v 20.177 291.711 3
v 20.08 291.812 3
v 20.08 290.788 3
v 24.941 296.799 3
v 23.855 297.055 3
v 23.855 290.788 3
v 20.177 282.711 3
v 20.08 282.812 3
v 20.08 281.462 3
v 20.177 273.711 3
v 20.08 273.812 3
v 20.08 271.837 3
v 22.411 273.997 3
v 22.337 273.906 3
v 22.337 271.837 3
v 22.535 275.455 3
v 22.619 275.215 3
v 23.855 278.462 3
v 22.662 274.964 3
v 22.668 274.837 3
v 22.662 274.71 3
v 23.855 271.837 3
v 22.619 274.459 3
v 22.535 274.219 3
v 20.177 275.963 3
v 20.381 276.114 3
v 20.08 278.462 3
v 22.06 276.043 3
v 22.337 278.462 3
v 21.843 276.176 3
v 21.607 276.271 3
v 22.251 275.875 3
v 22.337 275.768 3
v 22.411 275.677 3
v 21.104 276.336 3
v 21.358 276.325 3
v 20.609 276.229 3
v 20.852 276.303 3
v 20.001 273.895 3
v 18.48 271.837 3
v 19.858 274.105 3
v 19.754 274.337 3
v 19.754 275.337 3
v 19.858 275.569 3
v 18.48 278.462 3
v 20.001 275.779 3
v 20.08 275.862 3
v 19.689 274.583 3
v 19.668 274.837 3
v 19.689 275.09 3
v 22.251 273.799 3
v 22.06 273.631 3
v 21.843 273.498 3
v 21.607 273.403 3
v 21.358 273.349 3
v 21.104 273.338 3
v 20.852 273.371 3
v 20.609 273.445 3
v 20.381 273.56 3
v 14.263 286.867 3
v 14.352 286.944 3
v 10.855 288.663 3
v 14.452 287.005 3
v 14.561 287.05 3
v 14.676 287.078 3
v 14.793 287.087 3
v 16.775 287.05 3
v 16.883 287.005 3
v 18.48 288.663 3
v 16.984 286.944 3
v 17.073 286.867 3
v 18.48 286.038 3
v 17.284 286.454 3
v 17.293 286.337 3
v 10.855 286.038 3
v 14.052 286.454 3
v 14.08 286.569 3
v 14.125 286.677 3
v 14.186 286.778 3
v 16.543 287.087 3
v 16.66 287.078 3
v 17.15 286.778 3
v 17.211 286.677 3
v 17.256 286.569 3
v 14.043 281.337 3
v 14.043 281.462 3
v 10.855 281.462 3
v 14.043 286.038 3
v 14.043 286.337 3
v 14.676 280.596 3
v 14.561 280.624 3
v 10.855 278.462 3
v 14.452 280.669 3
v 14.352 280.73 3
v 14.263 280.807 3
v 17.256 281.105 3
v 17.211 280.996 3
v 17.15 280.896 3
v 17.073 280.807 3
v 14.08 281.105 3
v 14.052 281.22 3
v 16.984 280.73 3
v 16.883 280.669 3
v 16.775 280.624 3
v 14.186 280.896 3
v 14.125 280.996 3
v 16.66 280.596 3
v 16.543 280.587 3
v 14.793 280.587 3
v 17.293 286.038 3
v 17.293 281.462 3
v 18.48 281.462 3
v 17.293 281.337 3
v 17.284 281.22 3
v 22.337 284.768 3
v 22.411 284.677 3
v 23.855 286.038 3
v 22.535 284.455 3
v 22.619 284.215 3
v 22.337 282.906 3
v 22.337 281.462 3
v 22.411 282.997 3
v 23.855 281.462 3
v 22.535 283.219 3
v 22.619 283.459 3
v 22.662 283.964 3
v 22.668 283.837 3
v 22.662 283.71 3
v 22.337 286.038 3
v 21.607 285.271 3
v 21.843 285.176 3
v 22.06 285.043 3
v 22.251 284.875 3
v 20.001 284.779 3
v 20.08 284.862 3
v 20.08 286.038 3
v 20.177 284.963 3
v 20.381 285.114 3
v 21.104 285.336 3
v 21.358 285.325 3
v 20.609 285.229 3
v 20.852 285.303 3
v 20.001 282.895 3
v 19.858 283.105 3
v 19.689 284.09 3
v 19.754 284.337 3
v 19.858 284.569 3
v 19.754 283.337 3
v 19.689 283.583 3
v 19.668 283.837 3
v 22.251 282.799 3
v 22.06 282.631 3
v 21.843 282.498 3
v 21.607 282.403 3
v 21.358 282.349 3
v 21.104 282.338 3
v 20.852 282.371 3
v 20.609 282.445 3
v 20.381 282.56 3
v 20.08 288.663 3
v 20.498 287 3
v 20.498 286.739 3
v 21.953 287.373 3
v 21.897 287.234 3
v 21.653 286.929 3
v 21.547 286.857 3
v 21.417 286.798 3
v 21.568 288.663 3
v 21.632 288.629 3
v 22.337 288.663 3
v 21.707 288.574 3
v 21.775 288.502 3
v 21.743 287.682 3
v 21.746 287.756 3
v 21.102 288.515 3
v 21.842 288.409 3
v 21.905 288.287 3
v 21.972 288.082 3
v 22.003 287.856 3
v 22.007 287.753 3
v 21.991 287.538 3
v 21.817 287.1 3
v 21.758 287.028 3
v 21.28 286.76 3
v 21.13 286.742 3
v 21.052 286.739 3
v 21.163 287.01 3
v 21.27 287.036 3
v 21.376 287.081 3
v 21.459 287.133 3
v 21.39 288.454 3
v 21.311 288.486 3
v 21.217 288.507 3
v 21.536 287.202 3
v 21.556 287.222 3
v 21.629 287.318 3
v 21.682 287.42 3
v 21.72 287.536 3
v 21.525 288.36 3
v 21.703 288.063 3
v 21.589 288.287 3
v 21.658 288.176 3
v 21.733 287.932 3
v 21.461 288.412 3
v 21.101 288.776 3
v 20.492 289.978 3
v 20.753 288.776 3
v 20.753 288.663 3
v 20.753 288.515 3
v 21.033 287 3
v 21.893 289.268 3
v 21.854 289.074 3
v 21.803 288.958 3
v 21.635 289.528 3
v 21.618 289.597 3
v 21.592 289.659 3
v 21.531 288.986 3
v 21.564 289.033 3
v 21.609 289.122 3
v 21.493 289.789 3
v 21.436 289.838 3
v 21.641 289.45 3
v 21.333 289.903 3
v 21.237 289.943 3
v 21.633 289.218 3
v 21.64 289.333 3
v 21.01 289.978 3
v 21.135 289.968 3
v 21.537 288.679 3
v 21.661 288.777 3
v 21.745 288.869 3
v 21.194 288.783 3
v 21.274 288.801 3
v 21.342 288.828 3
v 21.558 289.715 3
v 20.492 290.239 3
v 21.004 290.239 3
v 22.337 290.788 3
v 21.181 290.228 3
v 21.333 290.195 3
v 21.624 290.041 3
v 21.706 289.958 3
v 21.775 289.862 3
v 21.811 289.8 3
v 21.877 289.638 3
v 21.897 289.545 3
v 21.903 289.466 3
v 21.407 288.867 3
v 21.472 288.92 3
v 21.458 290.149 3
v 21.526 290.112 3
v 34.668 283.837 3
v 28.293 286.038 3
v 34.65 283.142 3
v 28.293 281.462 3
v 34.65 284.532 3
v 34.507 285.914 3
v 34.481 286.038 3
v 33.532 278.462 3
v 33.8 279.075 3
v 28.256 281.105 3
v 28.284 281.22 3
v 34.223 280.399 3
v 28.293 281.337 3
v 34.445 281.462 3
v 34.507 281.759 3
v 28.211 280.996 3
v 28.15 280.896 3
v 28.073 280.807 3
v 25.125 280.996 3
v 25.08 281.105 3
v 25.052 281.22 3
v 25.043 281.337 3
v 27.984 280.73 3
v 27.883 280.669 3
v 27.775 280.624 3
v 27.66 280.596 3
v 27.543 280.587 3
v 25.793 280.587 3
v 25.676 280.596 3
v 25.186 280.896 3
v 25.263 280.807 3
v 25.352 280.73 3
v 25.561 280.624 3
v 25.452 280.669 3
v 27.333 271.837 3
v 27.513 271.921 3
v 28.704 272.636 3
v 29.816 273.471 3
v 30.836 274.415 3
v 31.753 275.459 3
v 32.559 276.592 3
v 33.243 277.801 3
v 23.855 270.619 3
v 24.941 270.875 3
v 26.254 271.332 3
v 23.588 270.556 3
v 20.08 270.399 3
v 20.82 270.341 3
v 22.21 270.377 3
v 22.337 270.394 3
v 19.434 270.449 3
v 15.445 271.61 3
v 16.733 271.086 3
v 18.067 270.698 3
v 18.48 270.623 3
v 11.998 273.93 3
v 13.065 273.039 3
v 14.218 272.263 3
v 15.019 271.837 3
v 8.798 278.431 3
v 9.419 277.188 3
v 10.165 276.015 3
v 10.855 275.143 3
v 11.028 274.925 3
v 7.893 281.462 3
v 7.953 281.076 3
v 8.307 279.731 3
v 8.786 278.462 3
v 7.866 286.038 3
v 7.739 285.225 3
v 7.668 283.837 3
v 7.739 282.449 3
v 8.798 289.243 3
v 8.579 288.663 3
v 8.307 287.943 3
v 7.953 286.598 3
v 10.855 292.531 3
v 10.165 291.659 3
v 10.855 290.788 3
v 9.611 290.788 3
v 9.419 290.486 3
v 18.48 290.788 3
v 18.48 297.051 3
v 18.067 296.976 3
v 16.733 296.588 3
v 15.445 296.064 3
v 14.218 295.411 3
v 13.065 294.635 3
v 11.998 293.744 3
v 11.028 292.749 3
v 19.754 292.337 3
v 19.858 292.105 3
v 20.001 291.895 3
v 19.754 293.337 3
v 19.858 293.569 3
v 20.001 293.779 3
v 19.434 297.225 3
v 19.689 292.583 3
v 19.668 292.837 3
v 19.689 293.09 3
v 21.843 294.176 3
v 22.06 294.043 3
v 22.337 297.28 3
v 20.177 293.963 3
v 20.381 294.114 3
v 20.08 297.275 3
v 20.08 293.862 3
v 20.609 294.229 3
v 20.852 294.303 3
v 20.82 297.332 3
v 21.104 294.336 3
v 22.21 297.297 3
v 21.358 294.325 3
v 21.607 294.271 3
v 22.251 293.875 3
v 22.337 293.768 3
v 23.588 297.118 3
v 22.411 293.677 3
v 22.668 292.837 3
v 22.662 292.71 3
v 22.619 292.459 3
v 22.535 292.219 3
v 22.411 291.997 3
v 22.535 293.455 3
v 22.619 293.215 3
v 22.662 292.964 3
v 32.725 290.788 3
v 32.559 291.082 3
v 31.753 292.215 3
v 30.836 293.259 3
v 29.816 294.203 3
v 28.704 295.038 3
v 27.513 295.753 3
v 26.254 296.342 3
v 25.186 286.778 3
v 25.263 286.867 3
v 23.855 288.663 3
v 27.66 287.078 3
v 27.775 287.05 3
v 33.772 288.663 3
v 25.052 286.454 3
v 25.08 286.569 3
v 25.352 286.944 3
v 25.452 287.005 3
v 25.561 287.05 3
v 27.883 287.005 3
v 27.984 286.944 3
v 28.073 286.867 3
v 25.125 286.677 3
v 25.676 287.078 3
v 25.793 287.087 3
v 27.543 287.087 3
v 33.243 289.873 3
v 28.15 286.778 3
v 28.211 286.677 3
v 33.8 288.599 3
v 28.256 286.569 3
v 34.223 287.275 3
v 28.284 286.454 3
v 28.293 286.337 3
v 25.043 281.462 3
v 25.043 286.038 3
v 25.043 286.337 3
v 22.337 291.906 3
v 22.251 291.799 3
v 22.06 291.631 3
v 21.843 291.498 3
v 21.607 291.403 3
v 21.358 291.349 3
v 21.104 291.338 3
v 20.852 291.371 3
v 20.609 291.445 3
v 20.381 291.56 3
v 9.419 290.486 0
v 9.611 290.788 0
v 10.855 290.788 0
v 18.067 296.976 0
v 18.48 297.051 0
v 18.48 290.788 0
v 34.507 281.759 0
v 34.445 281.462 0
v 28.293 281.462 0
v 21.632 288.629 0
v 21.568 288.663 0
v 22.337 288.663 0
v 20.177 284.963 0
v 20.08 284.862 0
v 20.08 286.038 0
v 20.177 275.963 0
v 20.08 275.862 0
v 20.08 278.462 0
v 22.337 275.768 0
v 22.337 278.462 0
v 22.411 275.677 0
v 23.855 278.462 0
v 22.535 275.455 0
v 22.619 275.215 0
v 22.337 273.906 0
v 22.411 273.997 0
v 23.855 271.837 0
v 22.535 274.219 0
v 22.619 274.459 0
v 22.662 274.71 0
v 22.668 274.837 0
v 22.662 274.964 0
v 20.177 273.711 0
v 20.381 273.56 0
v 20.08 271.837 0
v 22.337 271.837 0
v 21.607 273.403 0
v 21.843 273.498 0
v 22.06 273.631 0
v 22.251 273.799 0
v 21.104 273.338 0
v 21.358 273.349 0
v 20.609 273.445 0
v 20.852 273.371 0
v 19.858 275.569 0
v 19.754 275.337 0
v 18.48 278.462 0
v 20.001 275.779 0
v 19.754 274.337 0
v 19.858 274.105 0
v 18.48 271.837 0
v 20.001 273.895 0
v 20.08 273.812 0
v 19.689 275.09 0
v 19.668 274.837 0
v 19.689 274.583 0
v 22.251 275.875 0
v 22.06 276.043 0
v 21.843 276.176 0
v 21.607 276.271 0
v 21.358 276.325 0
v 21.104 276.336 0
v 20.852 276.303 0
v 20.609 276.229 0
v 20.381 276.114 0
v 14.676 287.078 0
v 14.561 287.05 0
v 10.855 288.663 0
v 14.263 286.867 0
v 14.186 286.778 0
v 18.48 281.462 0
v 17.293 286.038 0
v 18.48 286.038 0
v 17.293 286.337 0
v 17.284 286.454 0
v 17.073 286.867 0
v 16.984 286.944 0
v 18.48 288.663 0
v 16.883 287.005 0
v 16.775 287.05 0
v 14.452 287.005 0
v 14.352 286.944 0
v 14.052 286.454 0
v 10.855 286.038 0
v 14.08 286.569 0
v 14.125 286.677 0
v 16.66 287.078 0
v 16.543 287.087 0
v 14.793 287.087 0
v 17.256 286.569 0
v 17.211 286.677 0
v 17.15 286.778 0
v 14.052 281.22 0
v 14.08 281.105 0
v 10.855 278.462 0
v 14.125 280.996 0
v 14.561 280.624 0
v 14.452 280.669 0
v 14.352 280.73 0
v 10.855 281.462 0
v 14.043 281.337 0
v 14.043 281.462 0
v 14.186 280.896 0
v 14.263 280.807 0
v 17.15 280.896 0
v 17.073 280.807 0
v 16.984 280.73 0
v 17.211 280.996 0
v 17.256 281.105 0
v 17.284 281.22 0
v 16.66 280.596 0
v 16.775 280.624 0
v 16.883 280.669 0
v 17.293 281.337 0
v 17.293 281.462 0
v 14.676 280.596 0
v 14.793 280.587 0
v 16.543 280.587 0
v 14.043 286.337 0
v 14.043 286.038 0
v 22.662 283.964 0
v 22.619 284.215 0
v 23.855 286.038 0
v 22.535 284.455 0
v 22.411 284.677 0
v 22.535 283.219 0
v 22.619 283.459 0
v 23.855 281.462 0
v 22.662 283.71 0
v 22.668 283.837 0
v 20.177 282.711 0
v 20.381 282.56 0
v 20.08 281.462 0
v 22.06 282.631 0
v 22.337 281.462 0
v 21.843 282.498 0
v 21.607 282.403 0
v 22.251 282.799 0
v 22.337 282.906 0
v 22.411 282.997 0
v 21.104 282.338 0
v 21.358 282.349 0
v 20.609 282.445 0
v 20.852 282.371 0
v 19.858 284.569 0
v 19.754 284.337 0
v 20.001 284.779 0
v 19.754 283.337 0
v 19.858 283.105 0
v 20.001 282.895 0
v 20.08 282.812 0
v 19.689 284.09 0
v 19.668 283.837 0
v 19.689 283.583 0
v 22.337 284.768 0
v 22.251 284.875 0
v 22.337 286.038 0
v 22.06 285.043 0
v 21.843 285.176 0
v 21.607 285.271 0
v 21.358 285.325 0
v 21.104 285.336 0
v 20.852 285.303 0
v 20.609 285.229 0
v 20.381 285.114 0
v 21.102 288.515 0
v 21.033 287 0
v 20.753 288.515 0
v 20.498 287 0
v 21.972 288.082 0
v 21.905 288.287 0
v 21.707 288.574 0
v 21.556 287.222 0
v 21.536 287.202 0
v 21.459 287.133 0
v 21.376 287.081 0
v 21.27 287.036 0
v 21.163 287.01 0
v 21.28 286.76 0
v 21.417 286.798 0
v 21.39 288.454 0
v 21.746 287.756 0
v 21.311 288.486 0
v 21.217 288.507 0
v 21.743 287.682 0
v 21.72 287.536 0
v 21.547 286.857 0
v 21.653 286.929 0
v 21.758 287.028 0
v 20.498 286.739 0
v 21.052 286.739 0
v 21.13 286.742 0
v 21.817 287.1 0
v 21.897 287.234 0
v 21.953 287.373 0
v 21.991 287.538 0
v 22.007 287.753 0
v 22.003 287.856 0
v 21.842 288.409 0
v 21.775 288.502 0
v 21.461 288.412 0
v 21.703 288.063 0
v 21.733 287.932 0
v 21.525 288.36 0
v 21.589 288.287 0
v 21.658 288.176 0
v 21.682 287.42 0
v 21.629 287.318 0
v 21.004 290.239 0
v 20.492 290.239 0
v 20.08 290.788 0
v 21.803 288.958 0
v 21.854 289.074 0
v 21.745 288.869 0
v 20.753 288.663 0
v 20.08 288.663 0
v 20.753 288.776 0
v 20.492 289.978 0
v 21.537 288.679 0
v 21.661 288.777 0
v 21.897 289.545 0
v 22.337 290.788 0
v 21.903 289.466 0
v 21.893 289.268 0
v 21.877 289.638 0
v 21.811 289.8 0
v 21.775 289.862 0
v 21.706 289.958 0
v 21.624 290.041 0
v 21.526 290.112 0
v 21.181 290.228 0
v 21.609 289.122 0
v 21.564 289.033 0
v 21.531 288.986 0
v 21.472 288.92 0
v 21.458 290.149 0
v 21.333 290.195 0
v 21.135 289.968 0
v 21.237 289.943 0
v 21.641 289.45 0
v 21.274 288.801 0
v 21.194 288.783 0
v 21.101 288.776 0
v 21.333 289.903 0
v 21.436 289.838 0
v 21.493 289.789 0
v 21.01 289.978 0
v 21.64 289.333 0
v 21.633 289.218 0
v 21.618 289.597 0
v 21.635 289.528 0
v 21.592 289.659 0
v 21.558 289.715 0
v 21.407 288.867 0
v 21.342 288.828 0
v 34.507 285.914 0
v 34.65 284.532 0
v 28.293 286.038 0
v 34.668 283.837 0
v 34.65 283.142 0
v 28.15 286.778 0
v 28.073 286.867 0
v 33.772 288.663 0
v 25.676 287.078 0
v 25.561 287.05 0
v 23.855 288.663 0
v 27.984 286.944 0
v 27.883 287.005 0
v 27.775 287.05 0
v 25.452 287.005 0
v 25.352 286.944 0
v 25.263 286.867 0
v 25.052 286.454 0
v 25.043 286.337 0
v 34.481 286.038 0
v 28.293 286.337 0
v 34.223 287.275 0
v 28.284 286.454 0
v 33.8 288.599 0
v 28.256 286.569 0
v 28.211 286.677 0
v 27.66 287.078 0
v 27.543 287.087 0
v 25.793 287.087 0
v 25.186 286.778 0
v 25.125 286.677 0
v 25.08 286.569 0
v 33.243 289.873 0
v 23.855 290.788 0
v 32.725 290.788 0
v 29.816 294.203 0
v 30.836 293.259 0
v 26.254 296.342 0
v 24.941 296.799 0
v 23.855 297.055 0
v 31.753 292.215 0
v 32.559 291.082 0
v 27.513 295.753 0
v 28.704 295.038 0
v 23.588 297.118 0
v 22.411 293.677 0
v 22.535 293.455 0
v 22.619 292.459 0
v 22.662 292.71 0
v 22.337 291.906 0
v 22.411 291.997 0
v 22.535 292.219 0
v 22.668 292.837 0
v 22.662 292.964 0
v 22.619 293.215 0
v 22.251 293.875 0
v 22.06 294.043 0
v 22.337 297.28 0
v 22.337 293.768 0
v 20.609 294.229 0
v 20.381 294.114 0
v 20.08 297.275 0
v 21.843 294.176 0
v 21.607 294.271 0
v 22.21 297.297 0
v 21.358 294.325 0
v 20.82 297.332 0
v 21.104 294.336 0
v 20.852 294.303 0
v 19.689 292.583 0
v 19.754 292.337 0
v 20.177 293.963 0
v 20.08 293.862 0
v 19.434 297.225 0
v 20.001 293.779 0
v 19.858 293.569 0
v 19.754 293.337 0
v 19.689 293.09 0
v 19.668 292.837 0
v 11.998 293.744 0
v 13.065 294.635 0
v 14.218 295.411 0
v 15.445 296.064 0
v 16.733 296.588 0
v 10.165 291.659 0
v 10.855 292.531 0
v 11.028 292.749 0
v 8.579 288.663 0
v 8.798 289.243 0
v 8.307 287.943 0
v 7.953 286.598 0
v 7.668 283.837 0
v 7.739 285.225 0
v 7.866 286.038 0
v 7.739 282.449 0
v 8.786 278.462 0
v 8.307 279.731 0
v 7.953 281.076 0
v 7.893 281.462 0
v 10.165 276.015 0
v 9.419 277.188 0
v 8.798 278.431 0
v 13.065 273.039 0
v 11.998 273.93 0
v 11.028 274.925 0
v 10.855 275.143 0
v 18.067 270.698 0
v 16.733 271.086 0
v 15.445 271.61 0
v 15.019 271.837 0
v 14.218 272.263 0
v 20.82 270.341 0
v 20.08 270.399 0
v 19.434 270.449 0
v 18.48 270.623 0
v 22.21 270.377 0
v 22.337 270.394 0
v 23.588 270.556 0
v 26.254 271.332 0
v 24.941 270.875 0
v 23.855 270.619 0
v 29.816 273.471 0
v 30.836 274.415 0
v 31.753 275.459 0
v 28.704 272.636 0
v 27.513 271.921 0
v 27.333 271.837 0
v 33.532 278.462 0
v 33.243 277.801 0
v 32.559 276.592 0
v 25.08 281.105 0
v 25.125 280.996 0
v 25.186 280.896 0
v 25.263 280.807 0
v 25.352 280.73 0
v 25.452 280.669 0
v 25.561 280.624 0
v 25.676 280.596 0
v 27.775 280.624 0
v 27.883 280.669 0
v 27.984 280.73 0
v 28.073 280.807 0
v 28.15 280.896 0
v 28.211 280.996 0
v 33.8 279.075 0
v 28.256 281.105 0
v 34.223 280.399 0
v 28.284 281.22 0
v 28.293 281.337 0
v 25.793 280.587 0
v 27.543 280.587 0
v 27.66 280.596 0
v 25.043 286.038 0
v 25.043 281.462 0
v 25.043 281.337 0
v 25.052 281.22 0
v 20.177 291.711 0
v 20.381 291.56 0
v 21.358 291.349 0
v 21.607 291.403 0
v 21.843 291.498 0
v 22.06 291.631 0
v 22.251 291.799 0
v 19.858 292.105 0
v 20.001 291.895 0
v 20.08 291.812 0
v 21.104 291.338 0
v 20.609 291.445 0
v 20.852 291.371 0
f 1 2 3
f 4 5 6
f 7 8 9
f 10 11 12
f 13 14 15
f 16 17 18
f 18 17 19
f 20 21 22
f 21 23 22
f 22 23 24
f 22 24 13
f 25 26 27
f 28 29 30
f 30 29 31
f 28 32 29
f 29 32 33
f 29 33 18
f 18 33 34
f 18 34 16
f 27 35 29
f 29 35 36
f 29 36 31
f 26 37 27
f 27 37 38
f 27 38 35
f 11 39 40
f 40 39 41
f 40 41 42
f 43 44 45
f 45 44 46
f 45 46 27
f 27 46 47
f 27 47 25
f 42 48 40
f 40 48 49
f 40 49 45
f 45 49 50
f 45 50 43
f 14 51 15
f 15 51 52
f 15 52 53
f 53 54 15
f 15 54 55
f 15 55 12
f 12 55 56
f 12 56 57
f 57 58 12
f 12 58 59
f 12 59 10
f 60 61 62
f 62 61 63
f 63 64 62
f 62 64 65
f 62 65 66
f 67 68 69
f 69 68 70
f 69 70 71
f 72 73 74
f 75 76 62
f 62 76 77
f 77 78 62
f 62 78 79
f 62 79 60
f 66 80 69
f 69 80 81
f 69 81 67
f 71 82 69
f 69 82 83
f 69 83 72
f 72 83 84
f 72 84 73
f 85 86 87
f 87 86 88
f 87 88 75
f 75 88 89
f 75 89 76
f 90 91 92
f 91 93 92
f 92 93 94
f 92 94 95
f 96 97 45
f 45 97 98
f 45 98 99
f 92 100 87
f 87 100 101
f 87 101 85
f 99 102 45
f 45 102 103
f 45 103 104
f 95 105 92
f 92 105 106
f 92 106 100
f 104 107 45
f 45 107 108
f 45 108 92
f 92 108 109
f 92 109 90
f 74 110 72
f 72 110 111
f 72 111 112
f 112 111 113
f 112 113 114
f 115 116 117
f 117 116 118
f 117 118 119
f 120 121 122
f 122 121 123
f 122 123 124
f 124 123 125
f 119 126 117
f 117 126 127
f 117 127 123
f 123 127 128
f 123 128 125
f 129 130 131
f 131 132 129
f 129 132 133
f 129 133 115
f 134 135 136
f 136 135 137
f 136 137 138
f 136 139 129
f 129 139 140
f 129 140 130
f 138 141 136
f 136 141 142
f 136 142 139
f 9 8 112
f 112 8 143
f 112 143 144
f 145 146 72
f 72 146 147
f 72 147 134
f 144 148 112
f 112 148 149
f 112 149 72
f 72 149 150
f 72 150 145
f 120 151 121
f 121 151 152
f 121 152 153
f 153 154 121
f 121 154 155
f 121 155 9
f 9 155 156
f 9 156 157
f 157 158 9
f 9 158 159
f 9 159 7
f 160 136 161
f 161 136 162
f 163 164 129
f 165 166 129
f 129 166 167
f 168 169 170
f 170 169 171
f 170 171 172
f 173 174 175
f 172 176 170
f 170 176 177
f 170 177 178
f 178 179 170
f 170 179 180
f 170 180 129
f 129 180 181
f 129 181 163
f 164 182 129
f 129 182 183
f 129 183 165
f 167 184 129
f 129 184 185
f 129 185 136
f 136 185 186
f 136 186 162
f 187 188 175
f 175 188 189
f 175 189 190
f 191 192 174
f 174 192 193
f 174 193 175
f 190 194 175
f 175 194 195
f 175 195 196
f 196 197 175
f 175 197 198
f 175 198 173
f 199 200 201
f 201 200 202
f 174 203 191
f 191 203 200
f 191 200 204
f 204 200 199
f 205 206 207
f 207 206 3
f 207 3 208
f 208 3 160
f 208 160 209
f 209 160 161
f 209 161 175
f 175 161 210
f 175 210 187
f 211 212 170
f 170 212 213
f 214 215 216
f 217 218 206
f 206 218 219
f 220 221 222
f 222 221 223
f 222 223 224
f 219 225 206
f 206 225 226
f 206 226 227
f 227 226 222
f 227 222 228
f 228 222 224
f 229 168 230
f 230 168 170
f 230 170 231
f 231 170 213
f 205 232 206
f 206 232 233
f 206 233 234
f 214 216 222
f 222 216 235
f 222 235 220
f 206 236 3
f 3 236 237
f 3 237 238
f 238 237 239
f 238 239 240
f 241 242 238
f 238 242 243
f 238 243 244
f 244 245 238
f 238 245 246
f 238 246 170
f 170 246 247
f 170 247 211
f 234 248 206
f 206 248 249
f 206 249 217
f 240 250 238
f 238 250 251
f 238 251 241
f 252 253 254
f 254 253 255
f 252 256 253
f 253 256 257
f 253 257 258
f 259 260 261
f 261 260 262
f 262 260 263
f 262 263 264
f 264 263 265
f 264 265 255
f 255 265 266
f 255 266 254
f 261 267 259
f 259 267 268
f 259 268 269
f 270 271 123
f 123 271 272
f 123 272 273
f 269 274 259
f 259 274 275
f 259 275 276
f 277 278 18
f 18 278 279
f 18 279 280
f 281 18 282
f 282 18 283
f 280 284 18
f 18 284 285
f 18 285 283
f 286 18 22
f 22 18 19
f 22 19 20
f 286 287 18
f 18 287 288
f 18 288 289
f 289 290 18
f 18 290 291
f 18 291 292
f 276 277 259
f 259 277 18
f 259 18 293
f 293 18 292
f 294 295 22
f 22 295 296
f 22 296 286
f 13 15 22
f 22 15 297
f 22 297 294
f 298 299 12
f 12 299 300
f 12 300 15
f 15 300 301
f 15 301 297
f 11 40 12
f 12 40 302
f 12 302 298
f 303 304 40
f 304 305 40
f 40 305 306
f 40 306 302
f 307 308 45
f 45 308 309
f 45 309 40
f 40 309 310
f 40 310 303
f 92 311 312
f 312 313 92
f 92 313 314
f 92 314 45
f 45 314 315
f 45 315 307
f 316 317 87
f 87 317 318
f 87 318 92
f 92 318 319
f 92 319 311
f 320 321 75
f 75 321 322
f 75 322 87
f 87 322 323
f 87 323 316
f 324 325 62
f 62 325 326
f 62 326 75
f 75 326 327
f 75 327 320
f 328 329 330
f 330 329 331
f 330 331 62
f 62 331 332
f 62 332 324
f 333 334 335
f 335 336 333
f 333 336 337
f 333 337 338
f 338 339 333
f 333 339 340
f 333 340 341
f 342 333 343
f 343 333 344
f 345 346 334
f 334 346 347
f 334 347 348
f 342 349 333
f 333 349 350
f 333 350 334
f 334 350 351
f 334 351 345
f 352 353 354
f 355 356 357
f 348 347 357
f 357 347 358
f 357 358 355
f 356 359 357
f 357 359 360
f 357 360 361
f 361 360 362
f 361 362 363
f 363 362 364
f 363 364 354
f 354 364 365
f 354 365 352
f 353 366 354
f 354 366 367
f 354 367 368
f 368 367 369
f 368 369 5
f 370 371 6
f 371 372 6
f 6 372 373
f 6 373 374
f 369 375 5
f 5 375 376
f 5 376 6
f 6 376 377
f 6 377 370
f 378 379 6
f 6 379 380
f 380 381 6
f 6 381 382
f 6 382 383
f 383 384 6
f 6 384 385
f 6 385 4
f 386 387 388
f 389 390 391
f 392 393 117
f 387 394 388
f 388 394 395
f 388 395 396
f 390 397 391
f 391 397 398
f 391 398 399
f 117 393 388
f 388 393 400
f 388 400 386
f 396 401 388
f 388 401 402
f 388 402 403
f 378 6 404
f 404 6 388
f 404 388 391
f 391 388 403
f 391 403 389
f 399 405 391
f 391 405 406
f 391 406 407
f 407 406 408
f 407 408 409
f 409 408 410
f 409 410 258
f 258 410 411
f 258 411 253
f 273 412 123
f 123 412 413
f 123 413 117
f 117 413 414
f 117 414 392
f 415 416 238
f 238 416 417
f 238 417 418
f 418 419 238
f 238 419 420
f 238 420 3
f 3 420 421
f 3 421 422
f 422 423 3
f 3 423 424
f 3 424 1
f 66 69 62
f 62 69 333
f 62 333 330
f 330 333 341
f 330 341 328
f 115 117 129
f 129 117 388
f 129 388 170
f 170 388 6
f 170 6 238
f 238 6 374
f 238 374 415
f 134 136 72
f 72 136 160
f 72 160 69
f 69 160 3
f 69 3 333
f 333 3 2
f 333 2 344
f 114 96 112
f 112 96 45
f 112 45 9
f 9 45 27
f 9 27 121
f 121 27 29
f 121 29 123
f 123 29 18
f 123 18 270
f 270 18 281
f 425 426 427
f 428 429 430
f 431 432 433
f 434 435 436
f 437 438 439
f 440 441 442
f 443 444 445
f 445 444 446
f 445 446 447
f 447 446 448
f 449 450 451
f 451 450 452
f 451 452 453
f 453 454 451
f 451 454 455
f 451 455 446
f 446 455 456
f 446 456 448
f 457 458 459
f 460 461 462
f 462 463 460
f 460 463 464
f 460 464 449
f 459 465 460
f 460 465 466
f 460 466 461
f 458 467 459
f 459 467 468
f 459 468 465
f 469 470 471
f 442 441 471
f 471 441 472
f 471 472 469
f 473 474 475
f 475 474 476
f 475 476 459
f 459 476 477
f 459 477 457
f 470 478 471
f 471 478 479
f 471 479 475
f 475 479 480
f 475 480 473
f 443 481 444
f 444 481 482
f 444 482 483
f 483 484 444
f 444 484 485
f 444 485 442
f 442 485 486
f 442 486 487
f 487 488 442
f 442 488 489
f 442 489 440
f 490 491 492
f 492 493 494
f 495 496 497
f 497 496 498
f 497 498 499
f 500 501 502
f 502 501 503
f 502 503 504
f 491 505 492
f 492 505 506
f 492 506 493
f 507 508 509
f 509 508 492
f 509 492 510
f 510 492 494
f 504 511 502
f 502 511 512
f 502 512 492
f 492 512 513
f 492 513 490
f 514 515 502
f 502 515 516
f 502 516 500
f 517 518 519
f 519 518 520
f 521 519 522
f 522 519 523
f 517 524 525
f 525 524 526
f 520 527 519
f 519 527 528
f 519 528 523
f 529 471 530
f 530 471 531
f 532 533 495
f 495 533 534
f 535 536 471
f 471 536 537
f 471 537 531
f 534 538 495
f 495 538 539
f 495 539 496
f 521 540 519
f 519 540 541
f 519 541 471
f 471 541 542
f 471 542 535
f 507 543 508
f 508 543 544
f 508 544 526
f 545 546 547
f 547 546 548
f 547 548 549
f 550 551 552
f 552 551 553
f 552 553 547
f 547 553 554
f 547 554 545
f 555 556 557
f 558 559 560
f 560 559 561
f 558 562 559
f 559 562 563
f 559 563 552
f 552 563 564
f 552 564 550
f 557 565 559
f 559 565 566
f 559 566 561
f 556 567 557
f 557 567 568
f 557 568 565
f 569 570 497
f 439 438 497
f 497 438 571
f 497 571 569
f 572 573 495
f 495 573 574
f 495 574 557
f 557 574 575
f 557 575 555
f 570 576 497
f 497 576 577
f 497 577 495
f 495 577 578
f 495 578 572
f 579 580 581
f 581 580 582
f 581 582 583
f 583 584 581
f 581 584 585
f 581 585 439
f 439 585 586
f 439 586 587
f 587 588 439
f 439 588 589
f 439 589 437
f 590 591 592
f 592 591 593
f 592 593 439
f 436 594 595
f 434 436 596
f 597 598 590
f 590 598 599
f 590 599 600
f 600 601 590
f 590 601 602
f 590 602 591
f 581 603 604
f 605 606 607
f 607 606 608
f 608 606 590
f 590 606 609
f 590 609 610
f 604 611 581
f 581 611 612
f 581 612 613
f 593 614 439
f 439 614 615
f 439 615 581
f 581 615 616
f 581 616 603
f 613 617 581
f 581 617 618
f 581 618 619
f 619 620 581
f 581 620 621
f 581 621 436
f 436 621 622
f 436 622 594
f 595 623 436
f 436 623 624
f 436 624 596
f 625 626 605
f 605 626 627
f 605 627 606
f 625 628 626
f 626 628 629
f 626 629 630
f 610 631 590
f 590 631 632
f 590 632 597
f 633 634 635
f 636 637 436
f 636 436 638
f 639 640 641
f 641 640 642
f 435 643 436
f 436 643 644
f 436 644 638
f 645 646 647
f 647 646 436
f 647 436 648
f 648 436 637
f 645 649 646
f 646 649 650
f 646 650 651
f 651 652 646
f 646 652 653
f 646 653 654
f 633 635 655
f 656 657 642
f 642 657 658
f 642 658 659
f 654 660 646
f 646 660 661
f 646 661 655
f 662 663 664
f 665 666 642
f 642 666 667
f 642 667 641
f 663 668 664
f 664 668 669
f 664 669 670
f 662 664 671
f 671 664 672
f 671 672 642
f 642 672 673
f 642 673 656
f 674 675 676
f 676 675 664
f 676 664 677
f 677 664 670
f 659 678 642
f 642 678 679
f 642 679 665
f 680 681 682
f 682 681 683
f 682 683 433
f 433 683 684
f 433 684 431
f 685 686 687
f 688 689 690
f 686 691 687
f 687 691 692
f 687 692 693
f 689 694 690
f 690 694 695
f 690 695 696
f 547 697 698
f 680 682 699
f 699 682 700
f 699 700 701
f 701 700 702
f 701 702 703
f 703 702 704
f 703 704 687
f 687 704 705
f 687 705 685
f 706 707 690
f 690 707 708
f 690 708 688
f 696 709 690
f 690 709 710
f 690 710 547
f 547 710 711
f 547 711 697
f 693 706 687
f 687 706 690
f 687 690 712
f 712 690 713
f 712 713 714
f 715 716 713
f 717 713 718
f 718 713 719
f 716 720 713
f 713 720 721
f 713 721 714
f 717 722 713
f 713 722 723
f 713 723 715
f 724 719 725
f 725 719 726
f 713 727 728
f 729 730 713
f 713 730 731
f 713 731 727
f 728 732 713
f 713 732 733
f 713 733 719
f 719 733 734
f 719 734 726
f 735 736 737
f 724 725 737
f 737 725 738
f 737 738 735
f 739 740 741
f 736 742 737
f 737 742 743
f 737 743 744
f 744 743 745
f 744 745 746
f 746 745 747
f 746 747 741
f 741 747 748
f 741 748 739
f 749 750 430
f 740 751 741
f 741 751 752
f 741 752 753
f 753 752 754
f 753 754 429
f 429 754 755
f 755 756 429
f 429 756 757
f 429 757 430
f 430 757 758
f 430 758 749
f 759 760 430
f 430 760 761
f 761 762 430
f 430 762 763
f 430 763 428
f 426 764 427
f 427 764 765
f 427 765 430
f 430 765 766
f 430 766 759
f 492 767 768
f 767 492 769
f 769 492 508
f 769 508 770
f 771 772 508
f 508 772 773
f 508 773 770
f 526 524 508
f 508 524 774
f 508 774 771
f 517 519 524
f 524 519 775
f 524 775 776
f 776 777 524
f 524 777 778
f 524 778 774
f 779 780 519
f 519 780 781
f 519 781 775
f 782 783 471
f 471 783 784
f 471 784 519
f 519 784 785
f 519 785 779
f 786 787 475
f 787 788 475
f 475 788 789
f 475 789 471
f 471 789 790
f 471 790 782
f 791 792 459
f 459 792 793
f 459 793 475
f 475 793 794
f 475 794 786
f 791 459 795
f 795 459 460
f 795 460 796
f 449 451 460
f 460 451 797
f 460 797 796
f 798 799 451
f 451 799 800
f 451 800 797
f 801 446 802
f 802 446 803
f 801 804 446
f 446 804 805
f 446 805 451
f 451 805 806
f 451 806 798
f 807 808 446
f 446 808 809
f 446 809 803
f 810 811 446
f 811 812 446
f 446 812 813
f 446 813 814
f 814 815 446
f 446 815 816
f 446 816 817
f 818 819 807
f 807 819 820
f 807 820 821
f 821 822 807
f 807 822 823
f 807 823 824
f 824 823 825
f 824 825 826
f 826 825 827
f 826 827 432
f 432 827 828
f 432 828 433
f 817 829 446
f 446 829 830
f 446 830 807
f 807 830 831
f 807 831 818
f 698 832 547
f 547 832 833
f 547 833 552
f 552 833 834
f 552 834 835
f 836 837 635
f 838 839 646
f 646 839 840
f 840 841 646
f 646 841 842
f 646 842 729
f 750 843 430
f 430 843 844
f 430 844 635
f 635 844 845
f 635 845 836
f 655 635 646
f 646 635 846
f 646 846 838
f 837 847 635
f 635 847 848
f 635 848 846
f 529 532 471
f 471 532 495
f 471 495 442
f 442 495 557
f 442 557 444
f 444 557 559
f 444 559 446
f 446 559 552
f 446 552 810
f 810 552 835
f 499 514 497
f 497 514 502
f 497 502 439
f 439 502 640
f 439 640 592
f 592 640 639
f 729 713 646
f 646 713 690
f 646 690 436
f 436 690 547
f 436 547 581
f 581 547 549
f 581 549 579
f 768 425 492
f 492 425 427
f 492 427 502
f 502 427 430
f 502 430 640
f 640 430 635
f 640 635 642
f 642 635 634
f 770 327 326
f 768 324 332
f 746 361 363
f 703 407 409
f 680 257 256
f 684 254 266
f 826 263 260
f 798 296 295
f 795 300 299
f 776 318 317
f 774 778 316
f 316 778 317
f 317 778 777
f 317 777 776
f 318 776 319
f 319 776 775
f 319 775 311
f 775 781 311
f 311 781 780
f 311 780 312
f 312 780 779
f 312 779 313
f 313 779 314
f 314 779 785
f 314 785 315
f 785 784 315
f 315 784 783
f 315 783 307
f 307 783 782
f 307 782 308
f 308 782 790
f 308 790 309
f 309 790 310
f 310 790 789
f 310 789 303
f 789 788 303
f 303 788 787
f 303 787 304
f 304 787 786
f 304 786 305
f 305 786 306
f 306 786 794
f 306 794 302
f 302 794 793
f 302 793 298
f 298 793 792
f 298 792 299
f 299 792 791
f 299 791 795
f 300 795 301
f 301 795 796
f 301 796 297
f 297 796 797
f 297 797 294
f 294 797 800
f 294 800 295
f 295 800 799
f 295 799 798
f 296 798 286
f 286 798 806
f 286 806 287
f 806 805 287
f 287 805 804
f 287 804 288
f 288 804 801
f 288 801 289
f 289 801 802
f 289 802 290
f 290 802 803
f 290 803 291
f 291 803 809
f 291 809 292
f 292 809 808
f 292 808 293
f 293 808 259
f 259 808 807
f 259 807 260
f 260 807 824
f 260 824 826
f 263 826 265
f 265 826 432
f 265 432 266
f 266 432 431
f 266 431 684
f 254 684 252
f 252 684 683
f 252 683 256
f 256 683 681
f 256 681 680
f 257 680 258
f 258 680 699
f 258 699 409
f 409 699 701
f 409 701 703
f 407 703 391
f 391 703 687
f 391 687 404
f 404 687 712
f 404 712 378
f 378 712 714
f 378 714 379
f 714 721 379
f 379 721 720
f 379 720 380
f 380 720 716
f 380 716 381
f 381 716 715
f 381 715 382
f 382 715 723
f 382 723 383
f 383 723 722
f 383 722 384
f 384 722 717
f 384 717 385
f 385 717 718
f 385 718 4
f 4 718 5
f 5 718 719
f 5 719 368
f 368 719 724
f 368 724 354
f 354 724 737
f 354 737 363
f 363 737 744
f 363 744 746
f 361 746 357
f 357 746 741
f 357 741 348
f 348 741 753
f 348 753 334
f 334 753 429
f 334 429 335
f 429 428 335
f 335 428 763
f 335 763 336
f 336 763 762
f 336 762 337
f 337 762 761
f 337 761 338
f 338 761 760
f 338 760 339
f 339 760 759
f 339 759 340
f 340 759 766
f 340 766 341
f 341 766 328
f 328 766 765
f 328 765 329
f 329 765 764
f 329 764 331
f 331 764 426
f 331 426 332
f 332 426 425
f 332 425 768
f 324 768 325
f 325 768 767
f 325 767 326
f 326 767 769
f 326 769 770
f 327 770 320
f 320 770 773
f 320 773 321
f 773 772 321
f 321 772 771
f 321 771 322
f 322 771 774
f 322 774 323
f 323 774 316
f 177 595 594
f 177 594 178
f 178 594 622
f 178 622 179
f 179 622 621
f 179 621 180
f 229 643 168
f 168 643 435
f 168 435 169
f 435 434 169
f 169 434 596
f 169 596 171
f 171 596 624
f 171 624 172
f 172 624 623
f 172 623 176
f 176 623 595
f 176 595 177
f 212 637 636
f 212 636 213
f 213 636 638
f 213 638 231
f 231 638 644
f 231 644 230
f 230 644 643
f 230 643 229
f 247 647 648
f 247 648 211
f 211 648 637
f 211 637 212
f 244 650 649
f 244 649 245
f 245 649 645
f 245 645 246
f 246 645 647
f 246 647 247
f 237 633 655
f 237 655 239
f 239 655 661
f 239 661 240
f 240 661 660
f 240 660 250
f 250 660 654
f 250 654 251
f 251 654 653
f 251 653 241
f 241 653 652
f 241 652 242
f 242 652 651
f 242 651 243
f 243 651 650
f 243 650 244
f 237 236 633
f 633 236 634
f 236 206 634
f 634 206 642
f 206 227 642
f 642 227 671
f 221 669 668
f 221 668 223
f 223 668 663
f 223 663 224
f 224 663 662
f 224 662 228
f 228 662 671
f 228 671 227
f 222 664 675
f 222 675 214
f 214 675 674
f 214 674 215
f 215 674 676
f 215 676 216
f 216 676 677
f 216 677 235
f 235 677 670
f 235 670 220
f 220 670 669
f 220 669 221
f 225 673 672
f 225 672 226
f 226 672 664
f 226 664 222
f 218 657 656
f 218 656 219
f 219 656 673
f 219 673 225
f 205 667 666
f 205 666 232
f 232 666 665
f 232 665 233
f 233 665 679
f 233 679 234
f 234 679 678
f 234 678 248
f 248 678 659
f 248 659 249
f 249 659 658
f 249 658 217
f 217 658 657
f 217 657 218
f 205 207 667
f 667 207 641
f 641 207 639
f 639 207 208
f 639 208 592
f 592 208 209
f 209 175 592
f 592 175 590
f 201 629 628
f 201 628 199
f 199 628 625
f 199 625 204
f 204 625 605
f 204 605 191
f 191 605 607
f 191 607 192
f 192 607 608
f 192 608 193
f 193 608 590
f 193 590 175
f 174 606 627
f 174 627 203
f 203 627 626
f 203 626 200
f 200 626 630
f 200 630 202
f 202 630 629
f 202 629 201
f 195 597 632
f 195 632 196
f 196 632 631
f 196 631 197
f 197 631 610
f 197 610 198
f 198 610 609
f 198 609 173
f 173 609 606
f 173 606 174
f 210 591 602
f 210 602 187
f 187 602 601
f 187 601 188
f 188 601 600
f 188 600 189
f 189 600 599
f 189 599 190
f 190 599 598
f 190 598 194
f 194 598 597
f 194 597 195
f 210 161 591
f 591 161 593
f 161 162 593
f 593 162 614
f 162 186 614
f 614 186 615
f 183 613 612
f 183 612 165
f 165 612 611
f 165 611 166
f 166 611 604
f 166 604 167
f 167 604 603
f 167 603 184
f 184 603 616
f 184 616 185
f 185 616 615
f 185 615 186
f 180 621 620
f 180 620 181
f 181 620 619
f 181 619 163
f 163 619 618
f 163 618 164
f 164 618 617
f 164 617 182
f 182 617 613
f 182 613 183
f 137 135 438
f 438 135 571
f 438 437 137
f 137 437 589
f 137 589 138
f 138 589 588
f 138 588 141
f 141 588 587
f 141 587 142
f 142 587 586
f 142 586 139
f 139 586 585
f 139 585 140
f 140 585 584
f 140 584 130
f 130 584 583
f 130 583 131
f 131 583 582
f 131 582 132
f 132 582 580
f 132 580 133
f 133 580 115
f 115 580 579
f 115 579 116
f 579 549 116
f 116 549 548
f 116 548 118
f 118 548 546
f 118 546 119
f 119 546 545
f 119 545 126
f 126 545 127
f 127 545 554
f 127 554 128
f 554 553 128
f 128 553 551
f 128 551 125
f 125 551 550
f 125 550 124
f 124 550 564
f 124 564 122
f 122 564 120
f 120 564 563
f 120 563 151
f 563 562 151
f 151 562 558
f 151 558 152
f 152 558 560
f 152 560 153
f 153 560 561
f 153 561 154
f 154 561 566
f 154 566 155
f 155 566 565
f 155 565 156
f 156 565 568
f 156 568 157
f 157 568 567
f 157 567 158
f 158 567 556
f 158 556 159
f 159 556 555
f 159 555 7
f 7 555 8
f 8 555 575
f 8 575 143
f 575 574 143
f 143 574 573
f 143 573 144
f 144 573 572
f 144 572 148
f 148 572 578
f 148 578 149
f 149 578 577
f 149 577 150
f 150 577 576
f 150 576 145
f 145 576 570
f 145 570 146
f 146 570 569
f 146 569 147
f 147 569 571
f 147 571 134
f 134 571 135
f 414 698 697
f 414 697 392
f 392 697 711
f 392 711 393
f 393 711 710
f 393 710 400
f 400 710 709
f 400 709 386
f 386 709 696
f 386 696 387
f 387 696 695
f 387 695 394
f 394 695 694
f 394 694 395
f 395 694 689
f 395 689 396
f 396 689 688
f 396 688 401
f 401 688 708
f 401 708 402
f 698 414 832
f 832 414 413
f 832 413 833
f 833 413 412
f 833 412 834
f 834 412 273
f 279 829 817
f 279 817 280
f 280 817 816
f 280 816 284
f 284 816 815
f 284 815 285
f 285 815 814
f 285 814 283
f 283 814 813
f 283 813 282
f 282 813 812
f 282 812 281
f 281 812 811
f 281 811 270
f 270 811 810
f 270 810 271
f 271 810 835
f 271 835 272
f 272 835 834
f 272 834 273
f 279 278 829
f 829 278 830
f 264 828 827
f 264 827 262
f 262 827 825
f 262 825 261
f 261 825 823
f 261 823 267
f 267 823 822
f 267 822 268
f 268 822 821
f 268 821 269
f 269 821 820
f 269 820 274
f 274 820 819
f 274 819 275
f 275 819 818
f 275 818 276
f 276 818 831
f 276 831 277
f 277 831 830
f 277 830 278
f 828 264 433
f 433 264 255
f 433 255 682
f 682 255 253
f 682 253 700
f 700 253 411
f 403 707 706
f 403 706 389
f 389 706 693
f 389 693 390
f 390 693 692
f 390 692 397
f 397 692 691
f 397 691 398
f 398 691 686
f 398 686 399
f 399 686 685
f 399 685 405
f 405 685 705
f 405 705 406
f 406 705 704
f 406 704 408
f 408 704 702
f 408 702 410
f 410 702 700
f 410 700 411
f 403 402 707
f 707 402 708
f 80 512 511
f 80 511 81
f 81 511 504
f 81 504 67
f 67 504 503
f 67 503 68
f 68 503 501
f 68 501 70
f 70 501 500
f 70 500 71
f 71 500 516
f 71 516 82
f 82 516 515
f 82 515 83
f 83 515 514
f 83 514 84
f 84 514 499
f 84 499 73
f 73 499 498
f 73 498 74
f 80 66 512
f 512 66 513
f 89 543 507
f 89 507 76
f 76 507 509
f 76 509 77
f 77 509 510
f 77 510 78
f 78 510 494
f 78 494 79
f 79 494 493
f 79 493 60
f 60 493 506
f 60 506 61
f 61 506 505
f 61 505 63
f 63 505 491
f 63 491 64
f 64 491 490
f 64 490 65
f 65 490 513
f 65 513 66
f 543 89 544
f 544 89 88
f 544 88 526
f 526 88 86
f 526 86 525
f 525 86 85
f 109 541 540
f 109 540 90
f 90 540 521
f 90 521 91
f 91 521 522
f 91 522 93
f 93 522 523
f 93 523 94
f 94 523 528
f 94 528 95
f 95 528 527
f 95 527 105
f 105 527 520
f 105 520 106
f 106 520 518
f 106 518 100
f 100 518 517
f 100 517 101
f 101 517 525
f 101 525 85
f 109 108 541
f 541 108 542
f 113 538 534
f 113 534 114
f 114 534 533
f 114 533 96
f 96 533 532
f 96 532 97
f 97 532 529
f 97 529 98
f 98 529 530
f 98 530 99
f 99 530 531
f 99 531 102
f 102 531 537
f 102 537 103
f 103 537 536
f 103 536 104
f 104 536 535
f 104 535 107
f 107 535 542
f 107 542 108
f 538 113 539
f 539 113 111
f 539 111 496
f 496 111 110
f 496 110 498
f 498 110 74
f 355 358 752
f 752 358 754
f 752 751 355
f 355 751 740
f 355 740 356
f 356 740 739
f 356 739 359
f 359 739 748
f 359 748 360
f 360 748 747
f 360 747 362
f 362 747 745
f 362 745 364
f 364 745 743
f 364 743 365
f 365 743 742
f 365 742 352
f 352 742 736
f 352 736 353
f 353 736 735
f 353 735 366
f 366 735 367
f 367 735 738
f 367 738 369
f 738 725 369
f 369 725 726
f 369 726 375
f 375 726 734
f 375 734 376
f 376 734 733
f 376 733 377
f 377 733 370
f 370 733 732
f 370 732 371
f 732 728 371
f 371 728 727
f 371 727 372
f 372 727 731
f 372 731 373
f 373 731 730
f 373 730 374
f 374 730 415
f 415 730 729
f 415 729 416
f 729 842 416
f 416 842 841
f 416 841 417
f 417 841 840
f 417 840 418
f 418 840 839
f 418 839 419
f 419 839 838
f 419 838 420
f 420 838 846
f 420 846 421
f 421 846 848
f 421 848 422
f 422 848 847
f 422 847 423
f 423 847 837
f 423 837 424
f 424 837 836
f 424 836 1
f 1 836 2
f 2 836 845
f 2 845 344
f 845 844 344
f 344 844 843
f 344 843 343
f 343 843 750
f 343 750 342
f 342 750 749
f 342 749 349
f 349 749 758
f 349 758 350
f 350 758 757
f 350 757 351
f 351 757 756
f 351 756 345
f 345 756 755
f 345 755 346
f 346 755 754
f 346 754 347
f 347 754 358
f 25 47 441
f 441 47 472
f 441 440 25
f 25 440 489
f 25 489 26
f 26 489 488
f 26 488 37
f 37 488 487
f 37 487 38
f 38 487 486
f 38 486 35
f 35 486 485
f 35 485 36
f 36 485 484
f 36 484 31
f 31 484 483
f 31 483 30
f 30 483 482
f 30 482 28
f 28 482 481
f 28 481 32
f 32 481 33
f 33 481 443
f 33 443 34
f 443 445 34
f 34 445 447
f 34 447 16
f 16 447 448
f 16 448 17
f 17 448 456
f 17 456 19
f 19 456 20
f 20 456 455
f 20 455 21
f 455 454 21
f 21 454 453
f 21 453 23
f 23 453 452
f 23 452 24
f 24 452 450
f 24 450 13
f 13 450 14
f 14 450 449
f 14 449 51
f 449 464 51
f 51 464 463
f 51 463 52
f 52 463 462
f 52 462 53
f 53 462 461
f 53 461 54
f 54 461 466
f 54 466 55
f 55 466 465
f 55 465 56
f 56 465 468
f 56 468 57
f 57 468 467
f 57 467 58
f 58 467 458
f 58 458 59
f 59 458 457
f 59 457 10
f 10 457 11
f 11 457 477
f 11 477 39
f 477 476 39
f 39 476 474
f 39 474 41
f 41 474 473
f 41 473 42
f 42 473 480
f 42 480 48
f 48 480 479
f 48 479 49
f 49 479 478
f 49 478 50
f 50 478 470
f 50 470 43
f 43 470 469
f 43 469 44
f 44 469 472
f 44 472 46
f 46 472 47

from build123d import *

# Parameters (mm, degrees)
MODEL_R                 = 13.5
MODEL_R_2               = 1.5
SALIENTE_EXTRUIR1_DEPTH = 3


with BuildPart() as part:
    # Model → Saliente-Extruir1 (new body)
    with BuildSketch(Plane.XY):
        with Locations((21.167864369, 283.836969837)):
            Circle(MODEL_R)
        with Locations((21.167864369, 283.836969837)):
            Circle(MODEL_R_2, mode=Mode.SUBTRACT)
        with Locations((21.167864369, 292.836969837)):
            Circle(MODEL_R_2, mode=Mode.SUBTRACT)
        with Locations((21.167864369, 274.836969837)):
            Circle(MODEL_R_2, mode=Mode.SUBTRACT)
        with BuildLine():
            Line((27.542864369, 287.086969837), (25.792864369, 287.086969837))
            ThreePointArc((25.792864369, 287.086969837), (25.262534283, 286.867299923), (25.042864369, 286.336969837))
            Line((25.042864369, 286.336969837), (25.042864369, 281.336969837))
            ThreePointArc((25.042864369, 281.336969837), (25.262534283, 280.806639751), (25.792864369, 280.586969837))
            Line((25.792864369, 280.586969837), (27.542864369, 280.586969837))
            ThreePointArc((27.542864369, 280.586969837), (28.073194454, 280.806639751), (28.292864369, 281.336969837))
            Line((28.292864369, 281.336969837), (28.292864369, 286.336969837))
            ThreePointArc((28.292864369, 286.336969837), (28.073194454, 286.867299923), (27.542864369, 287.086969837))
        make_face(mode=Mode.SUBTRACT)
        with BuildLine():
            Line((14.792864369, 287.086969837), (16.542864369, 287.086969837))
            ThreePointArc((16.542864369, 287.086969837), (17.073194454, 286.867299923), (17.292864369, 286.336969837))
            Line((17.292864369, 286.336969837), (17.292864369, 281.336969837))
            ThreePointArc((17.292864369, 281.336969837), (17.073194454, 280.806639751), (16.542864369, 280.586969837))
            Line((16.542864369, 280.586969837), (14.792864369, 280.586969837))
            ThreePointArc((14.792864369, 280.586969837), (14.262534283, 280.806639751), (14.042864369, 281.336969837))
            Line((14.042864369, 281.336969837), (14.042864369, 286.336969837))
            ThreePointArc((14.042864369, 286.336969837), (14.262534283, 286.867299923), (14.792864369, 287.086969837))
        make_face(mode=Mode.SUBTRACT)
        with BuildLine():
            add(Edge.make_bspline(
                [(22.006993441, 287.753415048), (22.006172191, 287.716928587), (22.004568422, 287.645676392), (21.993135393, 287.541332376), (21.973516379, 287.442536499), (21.946685696, 287.348686497), (21.911477525, 287.260048048), (21.868040261, 287.176817115), (21.817632611, 287.098498345), (21.777884433, 287.05133063), (21.758042881, 287.027785384)],
                knots=[0, 0, 0, 0, 1.115577891, 2.178544379, 3.204804607, 4.192155228, 5.159249624, 6.11554861, 7.059316894, 8, 8, 8, 8], degree=3))
            add(Edge.make_bspline(
                [(21.758042881, 287.027785384), (21.73601152, 287.004605717), (21.692200482, 286.958511187), (21.617136147, 286.900352518), (21.537624651, 286.849328876), (21.451173506, 286.810051796), (21.359873554, 286.77752931), (21.262438119, 286.754808132), (21.159003088, 286.741929369), (21.088224879, 286.739885485), (21.05200277, 286.738839488)],
                knots=[0, 0, 0, 0, 0.974182212, 1.937235425, 2.888233128, 3.849890637, 4.826332808, 5.840933291, 6.895056104, 8, 8, 8, 8], degree=3))
            Line((21.05200277, 286.738839488), (20.497781687, 286.738839488))
            Line((20.497781687, 286.738839488), (20.497781687, 287.000033518))
            Line((20.497781687, 287.000033518), (21.033229449, 287.000033518))
            add(Edge.make_bspline(
                [(21.033229449, 287.000033518), (21.059653725, 287.000919571), (21.111355614, 287.002653229), (21.186916697, 287.013225583), (21.258244632, 287.031310058), (21.32576964, 287.056003306), (21.38961335, 287.087000578), (21.44975153, 287.124774673), (21.505586643, 287.169810236), (21.538837792, 287.204528413), (21.555617508, 287.222048443)],
                knots=[0, 0, 0, 0, 1.084178992, 2.121310725, 3.122997411, 4.097638005, 5.066122913, 6.029254004, 7.005491271, 8, 8, 8, 8], degree=3))
            add(Edge.make_bspline(
                [(21.555617508, 287.222048443), (21.570999544, 287.239956661), (21.601490979, 287.275455687), (21.639704379, 287.334170151), (21.672756978, 287.395771039), (21.699752927, 287.461072065), (21.72000496, 287.530104828), (21.73464822, 287.60219141), (21.743868039, 287.677813713), (21.745145683, 287.72944549), (21.745799411, 287.755863742)],
                knots=[0, 0, 0, 0, 0.975929627, 1.934561601, 2.891539334, 3.86584409, 4.852559224, 5.863826262, 6.906991381, 8, 8, 8, 8], degree=3))
            add(Edge.make_bspline(
                [(21.745799411, 287.755863742), (21.745351061, 287.782273605), (21.744471049, 287.834110399), (21.736907633, 287.91019579), (21.725020702, 287.982561288), (21.707666875, 288.051045489), (21.685633293, 288.115780826), (21.65874604, 288.177014822), (21.627095592, 288.234661565), (21.601696729, 288.269786427), (21.589082993, 288.287230346)],
                knots=[0, 0, 0, 0, 1.12360389, 2.205389034, 3.250364499, 4.241620612, 5.208228378, 6.156918895, 7.084678002, 8, 8, 8, 8], degree=3))
            add(Edge.make_bspline(
                [(21.589082993, 288.287230346), (21.574544546, 288.305301748), (21.545751158, 288.341092151), (21.495588333, 288.387456001), (21.441330602, 288.427404284), (21.381961231, 288.458984195), (21.318660617, 288.484833389), (21.250329767, 288.502552092), (21.177508361, 288.513371193), (21.127407132, 288.514421779), (21.101792881, 288.514958891)],
                knots=[0, 0, 0, 0, 0.994376019, 1.96936123, 2.922417962, 3.87868906, 4.848062798, 5.850838393, 6.901241263, 8, 8, 8, 8], degree=3))
            Line((21.101792881, 288.514958891), (20.753262098, 288.514958891))
            Line((20.753262098, 288.514958891), (20.753262098, 288.776152921))
            Line((20.753262098, 288.776152921), (21.10097665, 288.776152921))
            add(Edge.make_bspline(
                [(21.10097665, 288.776152921), (21.124978156, 288.776894886), (21.17221513, 288.778355134), (21.24067129, 288.791069119), (21.305723418, 288.810446517), (21.365901811, 288.839327455), (21.422358121, 288.875571718), (21.473959727, 288.920548215), (21.522716334, 288.97252323), (21.549889744, 289.0127191), (21.563779822, 289.033265794)],
                knots=[0, 0, 0, 0, 1.03852652, 2.043907225, 3.00545783, 3.969963621, 4.924268074, 5.901926174, 6.927539546, 8, 8, 8, 8], degree=3))
            add(Edge.make_bspline(
                [(21.563779822, 289.033265794), (21.580087317, 289.061494287), (21.613384605, 289.119132341), (21.626478423, 289.184420887), (21.633159486, 289.217734078)],
                knots=[0, 0, 0, 0, 0.9795089, 2, 2, 2, 2], degree=3))
            add(Edge.make_bspline(
                [(21.633159486, 289.217734078), (21.634295276, 289.22888413), (21.637116527, 289.256580356), (21.640596563, 289.306371742), (21.640310959, 289.372553775), (21.640961043, 289.422066995), (21.641321799, 289.449543779)],
                knots=[0, 0, 0, 0, 0.579519237, 1.439499501, 2.579080104, 4, 4, 4, 4], degree=3))
            add(Edge.make_bspline(
                [(21.641321799, 289.449543779), (21.640763207, 289.468644592), (21.63967018, 289.506020185), (21.628999757, 289.560636767), (21.614177359, 289.613425933), (21.590523941, 289.663107736), (21.562151141, 289.711395656), (21.525289358, 289.755836224), (21.484208987, 289.79980254), (21.452048145, 289.825137537), (21.435631501, 289.838069899)],
                knots=[0, 0, 0, 0, 1.002526936, 1.961698665, 2.916276685, 3.87598114, 4.844591571, 5.851696512, 6.903388936, 8, 8, 8, 8], degree=3))
            add(Edge.make_bspline(
                [(21.435631501, 289.838069899), (21.404492029, 289.859708178), (21.342724342, 289.902629473), (21.237809785, 289.945182436), (21.126620474, 289.972764119), (21.049727634, 289.975992976), (21.010374971, 289.977645458)],
                knots=[0, 0, 0, 0, 0.996493568, 1.9766264, 2.964466133, 4, 4, 4, 4], degree=3))
            Line((21.010374971, 289.977645458), (20.492068068, 289.977645458))
            Line((20.492068068, 289.977645458), (20.492068068, 290.238839488))
            Line((20.492068068, 290.238839488), (21.00384512, 290.238839488))
            add(Edge.make_bspline(
                [(21.00384512, 290.238839488), (21.050463483, 290.237830417), (21.140687736, 290.235877481), (21.270239549, 290.213980608), (21.388857916, 290.180083596), (21.496796805, 290.132553021), (21.593313097, 290.070012259), (21.677888732, 289.992796138), (21.753031972, 289.903301888), (21.79148527, 289.834697752), (21.811097919, 289.799707025)],
                knots=[0, 0, 0, 0, 1.150398076, 2.226457596, 3.234476189, 4.191097105, 5.1286688, 6.061241881, 7.011159392, 8, 8, 8, 8], degree=3))
            add(Edge.make_bspline(
                [(21.811097919, 289.799707025), (21.82509514, 289.770872206), (21.852143494, 289.715151544), (21.880625138, 289.629637364), (21.898956697, 289.546912649), (21.901352998, 289.492346985), (21.902515829, 289.465868406)],
                knots=[0, 0, 0, 0, 1.100306842, 2.126242689, 3.090738963, 4, 4, 4, 4], degree=3))
            add(Edge.make_bspline(
                [(21.902515829, 289.465868406), (21.901891131, 289.42775605), (21.900702296, 289.355226154), (21.891776806, 289.251582475), (21.8771786, 289.158564557), (21.861121354, 289.101169298), (21.853541949, 289.074077361)],
                knots=[0, 0, 0, 0, 1.154078597, 2.19627467, 3.148598438, 4, 4, 4, 4], degree=3))
            add(Edge.make_bspline(
                [(21.853541949, 289.074077361), (21.838843028, 289.036134419), (21.809139523, 288.959459511), (21.738416217, 288.854815662), (21.647160825, 288.759558716), (21.574488619, 288.706503935), (21.536844187, 288.679021391)],
                knots=[0, 0, 0, 0, 0.944683212, 1.909011131, 2.91686117, 4, 4, 4, 4], degree=3))
            add(Edge.make_bspline(
                [(21.536844187, 288.679021391), (21.556380181, 288.670189844), (21.595409564, 288.65254601), (21.650160169, 288.618471642), (21.70215206, 288.57948108), (21.749595699, 288.532763352), (21.794728064, 288.480789053), (21.835328975, 288.421709647), (21.872110759, 288.356686798), (21.893827459, 288.310775319), (21.904964523, 288.287230346)],
                knots=[0, 0, 0, 0, 0.931933608, 1.861834807, 2.799465617, 3.75391061, 4.752908839, 5.790647278, 6.866968556, 8, 8, 8, 8], degree=3))
            add(Edge.make_bspline(
                [(21.904964523, 288.287230346), (21.920920296, 288.247015558), (21.953322712, 288.165348797), (21.98404343, 288.034618703), (22.003330483, 287.896567742), (22.00575246, 287.801914037), (22.006993441, 287.753415048)],
                knots=[0, 0, 0, 0, 0.947814742, 1.924788424, 2.936695996, 4, 4, 4, 4], degree=3))
        make_face(mode=Mode.SUBTRACT)
    extrude(amount=SALIENTE_EXTRUIR1_DEPTH)


solid = part.part
